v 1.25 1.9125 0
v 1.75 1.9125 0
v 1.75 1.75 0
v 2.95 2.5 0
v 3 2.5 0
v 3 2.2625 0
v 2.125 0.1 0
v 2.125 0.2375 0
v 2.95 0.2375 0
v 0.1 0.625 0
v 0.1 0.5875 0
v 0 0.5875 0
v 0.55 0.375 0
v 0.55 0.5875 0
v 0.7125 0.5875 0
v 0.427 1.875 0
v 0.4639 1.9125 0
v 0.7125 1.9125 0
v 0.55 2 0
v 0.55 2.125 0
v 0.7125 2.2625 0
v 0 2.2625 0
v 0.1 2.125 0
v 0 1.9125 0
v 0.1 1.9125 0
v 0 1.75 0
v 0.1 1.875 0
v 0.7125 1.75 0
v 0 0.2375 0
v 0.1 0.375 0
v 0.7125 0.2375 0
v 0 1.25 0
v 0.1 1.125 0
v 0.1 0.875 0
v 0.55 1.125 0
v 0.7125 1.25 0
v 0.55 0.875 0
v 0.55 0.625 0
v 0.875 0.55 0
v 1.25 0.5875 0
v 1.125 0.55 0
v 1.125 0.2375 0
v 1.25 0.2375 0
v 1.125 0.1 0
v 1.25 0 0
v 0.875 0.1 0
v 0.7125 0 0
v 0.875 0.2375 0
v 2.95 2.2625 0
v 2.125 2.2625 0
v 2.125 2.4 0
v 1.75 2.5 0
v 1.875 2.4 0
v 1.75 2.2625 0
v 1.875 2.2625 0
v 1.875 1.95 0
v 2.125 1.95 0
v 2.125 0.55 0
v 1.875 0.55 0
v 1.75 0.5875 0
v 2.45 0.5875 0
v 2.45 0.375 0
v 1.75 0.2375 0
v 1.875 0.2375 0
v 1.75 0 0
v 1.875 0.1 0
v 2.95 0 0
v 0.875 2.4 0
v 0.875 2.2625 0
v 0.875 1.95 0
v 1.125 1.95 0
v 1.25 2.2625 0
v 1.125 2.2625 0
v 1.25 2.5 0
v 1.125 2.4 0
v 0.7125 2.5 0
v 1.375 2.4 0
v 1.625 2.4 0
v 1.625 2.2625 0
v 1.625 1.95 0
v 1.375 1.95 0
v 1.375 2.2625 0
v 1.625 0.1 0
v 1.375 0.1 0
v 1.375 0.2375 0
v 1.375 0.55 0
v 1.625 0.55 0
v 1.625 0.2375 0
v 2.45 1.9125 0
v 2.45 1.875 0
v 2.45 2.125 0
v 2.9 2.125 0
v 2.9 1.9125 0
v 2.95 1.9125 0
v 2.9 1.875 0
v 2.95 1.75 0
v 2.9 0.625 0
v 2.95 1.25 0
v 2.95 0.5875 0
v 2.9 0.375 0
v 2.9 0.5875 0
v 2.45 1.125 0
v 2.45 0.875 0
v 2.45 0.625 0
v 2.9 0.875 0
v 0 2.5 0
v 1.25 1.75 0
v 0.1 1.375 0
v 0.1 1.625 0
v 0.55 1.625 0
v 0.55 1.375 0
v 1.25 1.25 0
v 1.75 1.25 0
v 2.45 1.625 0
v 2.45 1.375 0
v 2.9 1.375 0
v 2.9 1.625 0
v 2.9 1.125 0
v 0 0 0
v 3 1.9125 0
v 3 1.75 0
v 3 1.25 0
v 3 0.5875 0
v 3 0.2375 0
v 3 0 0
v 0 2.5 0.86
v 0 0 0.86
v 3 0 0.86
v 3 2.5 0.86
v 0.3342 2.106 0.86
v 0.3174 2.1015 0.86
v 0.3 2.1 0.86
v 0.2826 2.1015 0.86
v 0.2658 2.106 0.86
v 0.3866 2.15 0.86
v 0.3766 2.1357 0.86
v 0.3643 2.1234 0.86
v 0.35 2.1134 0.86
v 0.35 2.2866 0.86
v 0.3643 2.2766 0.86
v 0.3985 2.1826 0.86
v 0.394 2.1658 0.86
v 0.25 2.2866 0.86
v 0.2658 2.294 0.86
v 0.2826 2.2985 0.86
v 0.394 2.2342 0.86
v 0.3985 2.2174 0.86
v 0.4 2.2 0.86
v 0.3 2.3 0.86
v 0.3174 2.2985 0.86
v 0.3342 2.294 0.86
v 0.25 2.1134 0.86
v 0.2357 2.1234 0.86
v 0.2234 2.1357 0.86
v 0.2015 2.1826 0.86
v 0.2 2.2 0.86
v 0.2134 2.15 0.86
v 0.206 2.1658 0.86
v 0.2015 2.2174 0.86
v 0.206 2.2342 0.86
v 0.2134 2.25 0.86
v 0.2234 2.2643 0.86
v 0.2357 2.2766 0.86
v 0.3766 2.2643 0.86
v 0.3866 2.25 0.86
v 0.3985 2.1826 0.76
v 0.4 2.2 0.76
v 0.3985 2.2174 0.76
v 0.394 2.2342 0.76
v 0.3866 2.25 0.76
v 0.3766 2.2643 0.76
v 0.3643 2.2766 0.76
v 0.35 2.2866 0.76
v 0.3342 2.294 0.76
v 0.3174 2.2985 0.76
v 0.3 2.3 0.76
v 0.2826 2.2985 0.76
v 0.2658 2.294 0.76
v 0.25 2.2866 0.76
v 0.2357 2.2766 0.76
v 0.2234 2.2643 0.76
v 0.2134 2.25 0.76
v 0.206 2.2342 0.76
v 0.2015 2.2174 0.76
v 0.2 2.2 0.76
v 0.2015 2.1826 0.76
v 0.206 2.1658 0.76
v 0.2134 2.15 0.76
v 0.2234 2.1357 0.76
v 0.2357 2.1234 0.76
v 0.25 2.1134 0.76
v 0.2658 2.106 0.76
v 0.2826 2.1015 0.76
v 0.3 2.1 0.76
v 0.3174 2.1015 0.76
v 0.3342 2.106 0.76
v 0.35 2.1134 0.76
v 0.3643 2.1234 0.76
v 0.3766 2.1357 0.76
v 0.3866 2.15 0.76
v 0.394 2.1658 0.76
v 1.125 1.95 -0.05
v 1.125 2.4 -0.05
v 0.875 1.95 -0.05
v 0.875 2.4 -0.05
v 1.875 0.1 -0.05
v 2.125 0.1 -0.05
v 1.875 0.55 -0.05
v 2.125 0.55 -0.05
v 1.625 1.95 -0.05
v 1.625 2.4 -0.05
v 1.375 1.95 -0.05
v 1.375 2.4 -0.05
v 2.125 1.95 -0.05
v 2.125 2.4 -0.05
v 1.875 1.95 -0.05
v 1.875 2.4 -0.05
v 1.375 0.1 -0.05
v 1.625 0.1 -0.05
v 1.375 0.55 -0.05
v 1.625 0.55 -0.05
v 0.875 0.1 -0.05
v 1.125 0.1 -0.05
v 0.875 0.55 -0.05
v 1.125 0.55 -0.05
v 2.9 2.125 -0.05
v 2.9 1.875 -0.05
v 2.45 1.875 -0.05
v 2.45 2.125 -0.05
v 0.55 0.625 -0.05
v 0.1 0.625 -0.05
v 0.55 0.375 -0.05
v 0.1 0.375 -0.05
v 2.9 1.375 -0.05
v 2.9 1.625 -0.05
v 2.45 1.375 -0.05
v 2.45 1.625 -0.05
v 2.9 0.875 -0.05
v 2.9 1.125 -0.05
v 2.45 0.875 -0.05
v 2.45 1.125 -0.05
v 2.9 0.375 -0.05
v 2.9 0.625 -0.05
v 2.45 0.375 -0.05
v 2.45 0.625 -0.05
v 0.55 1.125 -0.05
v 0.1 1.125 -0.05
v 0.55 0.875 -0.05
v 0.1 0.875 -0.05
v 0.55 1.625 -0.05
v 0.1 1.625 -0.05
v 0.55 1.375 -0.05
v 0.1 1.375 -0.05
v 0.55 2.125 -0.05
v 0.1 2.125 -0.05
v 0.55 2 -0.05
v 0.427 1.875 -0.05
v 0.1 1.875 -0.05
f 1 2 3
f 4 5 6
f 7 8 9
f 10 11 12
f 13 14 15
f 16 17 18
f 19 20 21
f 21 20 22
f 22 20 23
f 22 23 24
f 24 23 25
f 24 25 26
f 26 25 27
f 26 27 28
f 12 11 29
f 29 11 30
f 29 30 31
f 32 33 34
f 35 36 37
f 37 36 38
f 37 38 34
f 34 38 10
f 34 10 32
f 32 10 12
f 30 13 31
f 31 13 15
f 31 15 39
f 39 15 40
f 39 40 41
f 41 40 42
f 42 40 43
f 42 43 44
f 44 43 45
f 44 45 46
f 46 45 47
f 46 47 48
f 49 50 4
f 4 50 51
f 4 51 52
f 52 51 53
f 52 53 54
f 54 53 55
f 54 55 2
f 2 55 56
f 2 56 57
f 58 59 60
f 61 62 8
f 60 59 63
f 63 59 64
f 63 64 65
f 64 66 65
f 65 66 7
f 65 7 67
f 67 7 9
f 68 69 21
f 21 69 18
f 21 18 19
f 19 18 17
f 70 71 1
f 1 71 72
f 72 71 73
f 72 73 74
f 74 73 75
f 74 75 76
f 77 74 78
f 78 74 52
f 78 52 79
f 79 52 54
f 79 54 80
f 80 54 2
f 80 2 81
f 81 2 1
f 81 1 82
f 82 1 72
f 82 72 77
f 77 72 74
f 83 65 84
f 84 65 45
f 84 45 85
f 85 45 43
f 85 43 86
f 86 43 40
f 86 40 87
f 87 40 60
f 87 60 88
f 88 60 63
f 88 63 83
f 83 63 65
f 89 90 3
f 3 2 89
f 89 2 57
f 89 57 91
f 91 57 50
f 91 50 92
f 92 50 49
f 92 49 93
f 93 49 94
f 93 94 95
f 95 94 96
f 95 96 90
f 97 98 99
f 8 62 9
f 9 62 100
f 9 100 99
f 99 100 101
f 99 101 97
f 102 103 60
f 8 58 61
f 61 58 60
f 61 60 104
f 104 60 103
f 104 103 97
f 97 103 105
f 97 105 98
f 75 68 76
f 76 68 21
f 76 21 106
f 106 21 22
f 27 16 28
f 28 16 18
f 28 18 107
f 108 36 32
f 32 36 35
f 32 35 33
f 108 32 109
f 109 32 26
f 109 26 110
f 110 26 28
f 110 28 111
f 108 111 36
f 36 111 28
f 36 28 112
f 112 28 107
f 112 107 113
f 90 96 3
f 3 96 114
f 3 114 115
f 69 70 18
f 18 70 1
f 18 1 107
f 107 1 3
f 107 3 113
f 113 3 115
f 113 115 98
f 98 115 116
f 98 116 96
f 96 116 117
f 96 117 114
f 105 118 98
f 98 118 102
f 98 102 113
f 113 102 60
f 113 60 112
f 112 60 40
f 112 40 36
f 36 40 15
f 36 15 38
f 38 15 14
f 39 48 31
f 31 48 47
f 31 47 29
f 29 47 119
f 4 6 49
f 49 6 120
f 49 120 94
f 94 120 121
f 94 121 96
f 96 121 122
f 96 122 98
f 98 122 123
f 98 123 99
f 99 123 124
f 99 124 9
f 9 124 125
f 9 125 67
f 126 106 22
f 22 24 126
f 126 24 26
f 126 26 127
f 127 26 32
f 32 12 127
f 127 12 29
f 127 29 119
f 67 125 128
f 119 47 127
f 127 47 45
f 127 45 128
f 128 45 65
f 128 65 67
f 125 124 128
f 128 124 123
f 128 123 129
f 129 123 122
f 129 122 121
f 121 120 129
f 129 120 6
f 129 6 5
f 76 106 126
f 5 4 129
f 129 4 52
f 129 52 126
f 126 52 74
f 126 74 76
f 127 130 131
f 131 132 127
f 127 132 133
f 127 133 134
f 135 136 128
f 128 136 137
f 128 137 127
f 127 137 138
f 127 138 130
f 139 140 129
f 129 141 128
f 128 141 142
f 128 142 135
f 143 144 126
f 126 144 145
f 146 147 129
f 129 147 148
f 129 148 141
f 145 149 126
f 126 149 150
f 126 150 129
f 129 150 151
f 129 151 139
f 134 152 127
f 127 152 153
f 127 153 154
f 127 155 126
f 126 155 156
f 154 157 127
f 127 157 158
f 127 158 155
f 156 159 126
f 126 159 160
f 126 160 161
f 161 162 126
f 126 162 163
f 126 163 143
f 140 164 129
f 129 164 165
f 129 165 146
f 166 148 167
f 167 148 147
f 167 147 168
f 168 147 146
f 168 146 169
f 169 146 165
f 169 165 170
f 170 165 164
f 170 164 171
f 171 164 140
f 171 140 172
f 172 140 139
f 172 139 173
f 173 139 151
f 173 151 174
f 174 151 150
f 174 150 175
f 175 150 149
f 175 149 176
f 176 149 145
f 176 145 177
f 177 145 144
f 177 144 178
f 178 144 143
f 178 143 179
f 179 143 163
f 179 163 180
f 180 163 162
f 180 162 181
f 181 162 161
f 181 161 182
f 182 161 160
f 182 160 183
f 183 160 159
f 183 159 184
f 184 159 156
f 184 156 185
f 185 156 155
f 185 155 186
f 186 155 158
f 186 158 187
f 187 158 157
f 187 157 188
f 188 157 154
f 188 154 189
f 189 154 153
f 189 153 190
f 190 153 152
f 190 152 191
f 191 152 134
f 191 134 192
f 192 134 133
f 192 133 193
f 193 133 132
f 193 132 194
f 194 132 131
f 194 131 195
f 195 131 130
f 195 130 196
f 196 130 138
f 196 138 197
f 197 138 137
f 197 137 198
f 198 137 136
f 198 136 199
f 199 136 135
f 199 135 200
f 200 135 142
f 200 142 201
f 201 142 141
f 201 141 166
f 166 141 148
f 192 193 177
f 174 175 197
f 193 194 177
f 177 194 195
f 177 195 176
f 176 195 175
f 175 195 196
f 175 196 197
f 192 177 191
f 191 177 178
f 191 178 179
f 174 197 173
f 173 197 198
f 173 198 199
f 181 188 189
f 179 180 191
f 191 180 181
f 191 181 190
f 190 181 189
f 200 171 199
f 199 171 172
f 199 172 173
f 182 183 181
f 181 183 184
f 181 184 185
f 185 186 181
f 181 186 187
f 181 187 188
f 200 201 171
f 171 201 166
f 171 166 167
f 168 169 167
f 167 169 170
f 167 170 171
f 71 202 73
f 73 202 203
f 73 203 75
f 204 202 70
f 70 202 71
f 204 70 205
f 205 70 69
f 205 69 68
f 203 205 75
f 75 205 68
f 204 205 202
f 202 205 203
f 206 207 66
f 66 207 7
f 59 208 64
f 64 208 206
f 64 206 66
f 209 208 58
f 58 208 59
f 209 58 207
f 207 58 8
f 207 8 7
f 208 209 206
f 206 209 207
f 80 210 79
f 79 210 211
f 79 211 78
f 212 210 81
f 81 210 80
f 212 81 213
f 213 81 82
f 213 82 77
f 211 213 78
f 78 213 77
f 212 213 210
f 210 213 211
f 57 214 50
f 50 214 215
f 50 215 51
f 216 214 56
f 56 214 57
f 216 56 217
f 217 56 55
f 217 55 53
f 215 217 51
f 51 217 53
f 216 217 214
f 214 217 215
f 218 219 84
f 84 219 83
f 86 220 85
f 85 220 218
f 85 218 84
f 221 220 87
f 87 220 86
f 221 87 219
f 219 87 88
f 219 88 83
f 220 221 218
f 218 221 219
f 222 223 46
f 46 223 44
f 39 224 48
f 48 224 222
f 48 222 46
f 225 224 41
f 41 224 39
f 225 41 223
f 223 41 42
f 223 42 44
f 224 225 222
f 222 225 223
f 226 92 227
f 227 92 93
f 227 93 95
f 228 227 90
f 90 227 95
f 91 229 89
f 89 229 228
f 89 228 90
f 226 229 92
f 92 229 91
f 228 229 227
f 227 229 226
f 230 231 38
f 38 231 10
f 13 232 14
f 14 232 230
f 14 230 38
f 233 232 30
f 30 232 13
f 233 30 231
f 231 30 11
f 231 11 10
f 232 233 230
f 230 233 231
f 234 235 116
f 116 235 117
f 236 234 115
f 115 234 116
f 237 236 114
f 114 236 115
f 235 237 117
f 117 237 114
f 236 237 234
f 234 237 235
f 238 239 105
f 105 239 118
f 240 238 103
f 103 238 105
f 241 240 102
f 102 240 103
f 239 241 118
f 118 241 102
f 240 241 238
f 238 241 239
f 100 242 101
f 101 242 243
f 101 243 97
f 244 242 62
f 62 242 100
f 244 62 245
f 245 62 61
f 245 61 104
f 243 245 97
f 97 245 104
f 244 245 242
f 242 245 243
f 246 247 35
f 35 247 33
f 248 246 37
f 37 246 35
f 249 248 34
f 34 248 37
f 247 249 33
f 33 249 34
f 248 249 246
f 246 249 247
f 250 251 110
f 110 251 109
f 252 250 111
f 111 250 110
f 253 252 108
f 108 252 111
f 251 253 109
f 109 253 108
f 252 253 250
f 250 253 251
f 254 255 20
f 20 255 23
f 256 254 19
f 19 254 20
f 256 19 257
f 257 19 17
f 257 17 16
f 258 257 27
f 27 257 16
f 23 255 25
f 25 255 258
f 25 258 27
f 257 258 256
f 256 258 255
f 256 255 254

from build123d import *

# Parameters (mm, degrees)
SKETCH1_W           = 3
SKETCH1_H           = 2.5
BOSS_EXTRUDE1_DEPTH = 0.86
SKETCH2_R           = 0.1
CUT_EXTRUDE1_DEPTH  = 0.1
SKETCH3_W           = 0.25
SKETCH3_H           = 0.45
SKETCH3_W_2         = 0.45
SKETCH3_H_2         = 0.25
BOSS_EXTRUDE2_DEPTH = 0.05


with BuildPart() as part:
    # Sketch1 → Boss-Extrude1 (new body)
    with BuildSketch(Plane.XY):
        with Locations((1.5, 1.25)):
            Rectangle(SKETCH1_W, SKETCH1_H)
    extrude(amount=BOSS_EXTRUDE1_DEPTH)

    # Sketch2 → Cut-Extrude1 (cut)
    with BuildSketch(Plane.XY.offset(0.86)):
        with Locations((0.3, 2.2)):
            Circle(SKETCH2_R)
    extrude(amount=-CUT_EXTRUDE1_DEPTH, mode=Mode.SUBTRACT)

    # Sketch3 → Boss-Extrude2 (add)
    with BuildSketch(Plane(origin=(0, 0, 0), x_dir=(-1, 0, 0), z_dir=(0, 0, -1))):
        with Locations((-1, 2.175)):
            Rectangle(SKETCH3_W, SKETCH3_H)
        with Locations((-1.5, 2.175)):
            Rectangle(SKETCH3_W, SKETCH3_H)
        with Locations((-2, 2.175)):
            Rectangle(SKETCH3_W, SKETCH3_H)
        with Locations((-2, 0.325)):
            Rectangle(SKETCH3_W, SKETCH3_H)
        with Locations((-1.5, 0.325)):
            Rectangle(SKETCH3_W, SKETCH3_H)
        with Locations((-1, 0.325)):
            Rectangle(SKETCH3_W, SKETCH3_H)
        with Locations((-2.675, 2)):
            Rectangle(SKETCH3_W_2, SKETCH3_H_2)
        with Locations((-2.675, 1.5)):
            Rectangle(SKETCH3_W_2, SKETCH3_H_2)
        with Locations((-2.675, 1)):
            Rectangle(SKETCH3_W_2, SKETCH3_H_2)
        with Locations((-2.675, 0.5)):
            Rectangle(SKETCH3_W_2, SKETCH3_H_2)
        with Locations((-0.325, 0.5)):
            Rectangle(SKETCH3_W_2, SKETCH3_H_2)
        with Locations((-0.325, 1)):
            Rectangle(SKETCH3_W_2, SKETCH3_H_2)
        with Locations((-0.325, 1.5)):
            Rectangle(SKETCH3_W_2, SKETCH3_H_2)
        Polygon((-0.55, 2.125), (-0.55, 2), (-0.427001114, 1.875), (-0.1, 1.875), (-0.1, 2.125), align=None)
    extrude(amount=BOSS_EXTRUDE2_DEPTH)


solid = part.part
